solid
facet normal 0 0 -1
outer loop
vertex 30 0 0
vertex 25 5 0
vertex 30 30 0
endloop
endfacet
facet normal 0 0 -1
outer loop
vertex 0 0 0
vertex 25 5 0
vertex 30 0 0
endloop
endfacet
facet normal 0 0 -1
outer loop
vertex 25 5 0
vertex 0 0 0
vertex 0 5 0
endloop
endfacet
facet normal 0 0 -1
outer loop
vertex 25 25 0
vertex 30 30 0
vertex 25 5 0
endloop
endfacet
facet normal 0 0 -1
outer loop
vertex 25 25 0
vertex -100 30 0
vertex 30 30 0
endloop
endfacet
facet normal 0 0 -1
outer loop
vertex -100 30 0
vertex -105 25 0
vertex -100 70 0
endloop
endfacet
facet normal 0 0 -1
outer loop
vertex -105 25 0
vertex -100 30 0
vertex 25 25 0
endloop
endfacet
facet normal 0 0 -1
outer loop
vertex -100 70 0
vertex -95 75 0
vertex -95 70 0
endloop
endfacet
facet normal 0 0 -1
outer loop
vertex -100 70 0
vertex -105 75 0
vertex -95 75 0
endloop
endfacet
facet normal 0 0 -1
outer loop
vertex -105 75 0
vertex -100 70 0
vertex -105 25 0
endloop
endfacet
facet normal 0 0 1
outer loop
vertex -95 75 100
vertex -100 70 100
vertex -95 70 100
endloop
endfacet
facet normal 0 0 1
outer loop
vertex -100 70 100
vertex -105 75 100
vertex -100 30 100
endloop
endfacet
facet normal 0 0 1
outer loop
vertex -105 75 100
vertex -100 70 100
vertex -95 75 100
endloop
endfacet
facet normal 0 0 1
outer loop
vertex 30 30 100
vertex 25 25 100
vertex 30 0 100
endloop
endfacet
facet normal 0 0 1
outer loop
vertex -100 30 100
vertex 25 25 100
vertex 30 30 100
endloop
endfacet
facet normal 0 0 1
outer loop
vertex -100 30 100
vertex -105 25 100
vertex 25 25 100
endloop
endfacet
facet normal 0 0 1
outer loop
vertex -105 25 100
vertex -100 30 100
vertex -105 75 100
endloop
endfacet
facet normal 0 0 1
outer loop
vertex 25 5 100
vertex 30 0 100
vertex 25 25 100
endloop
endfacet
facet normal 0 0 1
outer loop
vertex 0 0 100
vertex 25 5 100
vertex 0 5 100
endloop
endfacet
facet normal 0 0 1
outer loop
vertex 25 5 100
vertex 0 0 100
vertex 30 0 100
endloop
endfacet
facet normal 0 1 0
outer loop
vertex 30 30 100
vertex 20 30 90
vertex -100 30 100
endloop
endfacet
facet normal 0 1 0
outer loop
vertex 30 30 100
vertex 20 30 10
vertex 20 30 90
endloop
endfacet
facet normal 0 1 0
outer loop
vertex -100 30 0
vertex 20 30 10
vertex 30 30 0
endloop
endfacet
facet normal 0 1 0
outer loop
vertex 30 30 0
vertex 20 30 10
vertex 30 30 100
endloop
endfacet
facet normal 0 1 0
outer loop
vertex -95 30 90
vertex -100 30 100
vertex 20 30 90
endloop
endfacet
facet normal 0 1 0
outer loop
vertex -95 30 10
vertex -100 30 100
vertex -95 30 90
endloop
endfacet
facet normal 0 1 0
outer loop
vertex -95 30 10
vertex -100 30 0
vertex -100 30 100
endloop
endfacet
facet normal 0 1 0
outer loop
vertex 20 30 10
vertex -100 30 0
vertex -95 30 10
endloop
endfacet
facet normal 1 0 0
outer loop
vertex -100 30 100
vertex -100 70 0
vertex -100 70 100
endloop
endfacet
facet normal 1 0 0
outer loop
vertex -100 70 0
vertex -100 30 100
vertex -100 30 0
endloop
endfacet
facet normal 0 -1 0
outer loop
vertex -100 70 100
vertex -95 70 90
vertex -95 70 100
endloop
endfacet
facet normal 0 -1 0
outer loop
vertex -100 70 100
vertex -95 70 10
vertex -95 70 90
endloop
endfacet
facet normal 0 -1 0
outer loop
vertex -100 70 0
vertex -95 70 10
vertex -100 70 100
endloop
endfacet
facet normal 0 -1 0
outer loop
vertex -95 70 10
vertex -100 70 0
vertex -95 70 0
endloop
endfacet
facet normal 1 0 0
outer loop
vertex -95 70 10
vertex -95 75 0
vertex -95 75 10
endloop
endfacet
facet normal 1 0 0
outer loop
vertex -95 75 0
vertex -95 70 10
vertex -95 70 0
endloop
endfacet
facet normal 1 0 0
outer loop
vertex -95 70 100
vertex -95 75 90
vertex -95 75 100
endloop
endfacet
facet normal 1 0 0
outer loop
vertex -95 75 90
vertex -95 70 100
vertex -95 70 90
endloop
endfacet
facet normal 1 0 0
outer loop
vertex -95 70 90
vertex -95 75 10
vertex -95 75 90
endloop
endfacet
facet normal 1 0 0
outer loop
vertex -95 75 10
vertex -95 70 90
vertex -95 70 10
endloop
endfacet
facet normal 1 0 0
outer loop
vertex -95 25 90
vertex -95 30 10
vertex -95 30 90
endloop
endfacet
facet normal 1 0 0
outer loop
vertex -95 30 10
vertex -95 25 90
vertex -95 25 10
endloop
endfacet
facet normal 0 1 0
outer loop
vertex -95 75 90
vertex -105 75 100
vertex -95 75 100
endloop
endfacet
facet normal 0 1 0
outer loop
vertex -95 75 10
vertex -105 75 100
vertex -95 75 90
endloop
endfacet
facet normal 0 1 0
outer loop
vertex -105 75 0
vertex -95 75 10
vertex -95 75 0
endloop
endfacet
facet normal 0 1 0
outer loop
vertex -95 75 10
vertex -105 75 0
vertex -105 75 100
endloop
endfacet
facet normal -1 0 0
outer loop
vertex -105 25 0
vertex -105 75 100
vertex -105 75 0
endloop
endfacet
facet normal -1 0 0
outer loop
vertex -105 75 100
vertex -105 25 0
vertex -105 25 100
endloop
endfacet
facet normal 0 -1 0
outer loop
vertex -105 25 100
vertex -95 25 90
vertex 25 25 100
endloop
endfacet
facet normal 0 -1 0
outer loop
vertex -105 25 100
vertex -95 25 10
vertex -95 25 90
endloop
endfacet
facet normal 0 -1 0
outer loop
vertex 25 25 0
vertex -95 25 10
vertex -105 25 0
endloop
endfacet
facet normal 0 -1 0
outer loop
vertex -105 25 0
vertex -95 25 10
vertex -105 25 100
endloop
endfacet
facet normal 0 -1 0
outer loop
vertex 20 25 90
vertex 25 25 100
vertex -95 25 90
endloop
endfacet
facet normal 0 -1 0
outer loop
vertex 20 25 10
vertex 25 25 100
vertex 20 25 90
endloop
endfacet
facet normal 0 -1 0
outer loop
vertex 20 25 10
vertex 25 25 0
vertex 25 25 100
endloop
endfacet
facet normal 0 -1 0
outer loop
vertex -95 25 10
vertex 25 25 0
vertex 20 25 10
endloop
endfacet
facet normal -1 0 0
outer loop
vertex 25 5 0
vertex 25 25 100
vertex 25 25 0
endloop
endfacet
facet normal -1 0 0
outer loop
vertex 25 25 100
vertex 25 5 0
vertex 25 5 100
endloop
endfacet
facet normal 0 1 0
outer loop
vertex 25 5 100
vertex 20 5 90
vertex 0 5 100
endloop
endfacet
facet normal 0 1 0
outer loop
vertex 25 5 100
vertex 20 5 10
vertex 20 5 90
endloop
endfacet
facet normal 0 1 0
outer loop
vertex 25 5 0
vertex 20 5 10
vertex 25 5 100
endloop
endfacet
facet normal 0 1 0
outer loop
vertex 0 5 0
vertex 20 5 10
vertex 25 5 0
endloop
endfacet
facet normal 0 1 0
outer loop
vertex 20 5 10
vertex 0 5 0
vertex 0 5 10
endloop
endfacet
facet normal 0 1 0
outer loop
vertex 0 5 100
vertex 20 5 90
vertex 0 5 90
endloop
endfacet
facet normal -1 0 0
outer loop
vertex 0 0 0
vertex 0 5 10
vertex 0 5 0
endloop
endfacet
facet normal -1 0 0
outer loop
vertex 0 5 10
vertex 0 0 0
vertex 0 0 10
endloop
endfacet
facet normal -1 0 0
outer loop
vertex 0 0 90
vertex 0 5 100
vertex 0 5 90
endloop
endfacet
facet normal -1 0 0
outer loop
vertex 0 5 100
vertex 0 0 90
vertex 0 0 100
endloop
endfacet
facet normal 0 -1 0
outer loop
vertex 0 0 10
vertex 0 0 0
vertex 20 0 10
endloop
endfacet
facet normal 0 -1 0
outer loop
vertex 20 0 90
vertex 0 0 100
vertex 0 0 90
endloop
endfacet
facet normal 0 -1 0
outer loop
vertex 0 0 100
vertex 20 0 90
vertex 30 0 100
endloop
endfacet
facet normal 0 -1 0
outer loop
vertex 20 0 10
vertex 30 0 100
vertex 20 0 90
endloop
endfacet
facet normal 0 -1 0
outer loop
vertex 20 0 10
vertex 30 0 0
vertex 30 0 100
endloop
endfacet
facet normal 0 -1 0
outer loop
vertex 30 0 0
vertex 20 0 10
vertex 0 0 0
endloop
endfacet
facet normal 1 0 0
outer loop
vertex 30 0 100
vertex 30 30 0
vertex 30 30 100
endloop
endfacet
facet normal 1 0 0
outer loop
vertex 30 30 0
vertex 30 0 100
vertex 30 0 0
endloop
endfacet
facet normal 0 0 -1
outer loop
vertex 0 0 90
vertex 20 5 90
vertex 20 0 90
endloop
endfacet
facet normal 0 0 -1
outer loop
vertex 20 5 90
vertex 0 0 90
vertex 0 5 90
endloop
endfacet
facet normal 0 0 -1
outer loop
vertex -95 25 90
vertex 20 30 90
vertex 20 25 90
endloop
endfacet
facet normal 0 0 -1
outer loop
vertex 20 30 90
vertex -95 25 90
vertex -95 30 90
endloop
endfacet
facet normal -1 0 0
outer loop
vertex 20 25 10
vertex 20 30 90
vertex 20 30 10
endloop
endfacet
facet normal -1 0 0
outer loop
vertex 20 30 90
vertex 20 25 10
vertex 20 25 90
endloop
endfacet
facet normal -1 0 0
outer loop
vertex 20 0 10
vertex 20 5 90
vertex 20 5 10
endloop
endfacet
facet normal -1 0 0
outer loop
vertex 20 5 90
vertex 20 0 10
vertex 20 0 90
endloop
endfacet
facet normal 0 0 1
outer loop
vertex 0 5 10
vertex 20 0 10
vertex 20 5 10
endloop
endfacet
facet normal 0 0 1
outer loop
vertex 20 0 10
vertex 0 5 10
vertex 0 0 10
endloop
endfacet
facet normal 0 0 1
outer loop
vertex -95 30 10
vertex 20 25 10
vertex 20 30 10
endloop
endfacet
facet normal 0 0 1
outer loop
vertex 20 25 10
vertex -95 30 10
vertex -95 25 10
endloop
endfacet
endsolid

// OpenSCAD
$fn=75  ;

module myPhoneHolder(){
    difference(){
        translate([0, 0, 0])
            linear_extrude(100){
                points = [
                    [0,0],
                    [30,0], [30, 30], 
                    [-100,30], [-100,70],
                    [-95,70], [-95,75], [-105,75],
                    [-105,70], [-105,25],
                    [25,25], [25,5], [0,5],
                ];
                polygon(points);
            };

        translate([-95, -30, 10]){
            cube([115, 120, 80]);
        }
    }
}

myPhoneHolder();
